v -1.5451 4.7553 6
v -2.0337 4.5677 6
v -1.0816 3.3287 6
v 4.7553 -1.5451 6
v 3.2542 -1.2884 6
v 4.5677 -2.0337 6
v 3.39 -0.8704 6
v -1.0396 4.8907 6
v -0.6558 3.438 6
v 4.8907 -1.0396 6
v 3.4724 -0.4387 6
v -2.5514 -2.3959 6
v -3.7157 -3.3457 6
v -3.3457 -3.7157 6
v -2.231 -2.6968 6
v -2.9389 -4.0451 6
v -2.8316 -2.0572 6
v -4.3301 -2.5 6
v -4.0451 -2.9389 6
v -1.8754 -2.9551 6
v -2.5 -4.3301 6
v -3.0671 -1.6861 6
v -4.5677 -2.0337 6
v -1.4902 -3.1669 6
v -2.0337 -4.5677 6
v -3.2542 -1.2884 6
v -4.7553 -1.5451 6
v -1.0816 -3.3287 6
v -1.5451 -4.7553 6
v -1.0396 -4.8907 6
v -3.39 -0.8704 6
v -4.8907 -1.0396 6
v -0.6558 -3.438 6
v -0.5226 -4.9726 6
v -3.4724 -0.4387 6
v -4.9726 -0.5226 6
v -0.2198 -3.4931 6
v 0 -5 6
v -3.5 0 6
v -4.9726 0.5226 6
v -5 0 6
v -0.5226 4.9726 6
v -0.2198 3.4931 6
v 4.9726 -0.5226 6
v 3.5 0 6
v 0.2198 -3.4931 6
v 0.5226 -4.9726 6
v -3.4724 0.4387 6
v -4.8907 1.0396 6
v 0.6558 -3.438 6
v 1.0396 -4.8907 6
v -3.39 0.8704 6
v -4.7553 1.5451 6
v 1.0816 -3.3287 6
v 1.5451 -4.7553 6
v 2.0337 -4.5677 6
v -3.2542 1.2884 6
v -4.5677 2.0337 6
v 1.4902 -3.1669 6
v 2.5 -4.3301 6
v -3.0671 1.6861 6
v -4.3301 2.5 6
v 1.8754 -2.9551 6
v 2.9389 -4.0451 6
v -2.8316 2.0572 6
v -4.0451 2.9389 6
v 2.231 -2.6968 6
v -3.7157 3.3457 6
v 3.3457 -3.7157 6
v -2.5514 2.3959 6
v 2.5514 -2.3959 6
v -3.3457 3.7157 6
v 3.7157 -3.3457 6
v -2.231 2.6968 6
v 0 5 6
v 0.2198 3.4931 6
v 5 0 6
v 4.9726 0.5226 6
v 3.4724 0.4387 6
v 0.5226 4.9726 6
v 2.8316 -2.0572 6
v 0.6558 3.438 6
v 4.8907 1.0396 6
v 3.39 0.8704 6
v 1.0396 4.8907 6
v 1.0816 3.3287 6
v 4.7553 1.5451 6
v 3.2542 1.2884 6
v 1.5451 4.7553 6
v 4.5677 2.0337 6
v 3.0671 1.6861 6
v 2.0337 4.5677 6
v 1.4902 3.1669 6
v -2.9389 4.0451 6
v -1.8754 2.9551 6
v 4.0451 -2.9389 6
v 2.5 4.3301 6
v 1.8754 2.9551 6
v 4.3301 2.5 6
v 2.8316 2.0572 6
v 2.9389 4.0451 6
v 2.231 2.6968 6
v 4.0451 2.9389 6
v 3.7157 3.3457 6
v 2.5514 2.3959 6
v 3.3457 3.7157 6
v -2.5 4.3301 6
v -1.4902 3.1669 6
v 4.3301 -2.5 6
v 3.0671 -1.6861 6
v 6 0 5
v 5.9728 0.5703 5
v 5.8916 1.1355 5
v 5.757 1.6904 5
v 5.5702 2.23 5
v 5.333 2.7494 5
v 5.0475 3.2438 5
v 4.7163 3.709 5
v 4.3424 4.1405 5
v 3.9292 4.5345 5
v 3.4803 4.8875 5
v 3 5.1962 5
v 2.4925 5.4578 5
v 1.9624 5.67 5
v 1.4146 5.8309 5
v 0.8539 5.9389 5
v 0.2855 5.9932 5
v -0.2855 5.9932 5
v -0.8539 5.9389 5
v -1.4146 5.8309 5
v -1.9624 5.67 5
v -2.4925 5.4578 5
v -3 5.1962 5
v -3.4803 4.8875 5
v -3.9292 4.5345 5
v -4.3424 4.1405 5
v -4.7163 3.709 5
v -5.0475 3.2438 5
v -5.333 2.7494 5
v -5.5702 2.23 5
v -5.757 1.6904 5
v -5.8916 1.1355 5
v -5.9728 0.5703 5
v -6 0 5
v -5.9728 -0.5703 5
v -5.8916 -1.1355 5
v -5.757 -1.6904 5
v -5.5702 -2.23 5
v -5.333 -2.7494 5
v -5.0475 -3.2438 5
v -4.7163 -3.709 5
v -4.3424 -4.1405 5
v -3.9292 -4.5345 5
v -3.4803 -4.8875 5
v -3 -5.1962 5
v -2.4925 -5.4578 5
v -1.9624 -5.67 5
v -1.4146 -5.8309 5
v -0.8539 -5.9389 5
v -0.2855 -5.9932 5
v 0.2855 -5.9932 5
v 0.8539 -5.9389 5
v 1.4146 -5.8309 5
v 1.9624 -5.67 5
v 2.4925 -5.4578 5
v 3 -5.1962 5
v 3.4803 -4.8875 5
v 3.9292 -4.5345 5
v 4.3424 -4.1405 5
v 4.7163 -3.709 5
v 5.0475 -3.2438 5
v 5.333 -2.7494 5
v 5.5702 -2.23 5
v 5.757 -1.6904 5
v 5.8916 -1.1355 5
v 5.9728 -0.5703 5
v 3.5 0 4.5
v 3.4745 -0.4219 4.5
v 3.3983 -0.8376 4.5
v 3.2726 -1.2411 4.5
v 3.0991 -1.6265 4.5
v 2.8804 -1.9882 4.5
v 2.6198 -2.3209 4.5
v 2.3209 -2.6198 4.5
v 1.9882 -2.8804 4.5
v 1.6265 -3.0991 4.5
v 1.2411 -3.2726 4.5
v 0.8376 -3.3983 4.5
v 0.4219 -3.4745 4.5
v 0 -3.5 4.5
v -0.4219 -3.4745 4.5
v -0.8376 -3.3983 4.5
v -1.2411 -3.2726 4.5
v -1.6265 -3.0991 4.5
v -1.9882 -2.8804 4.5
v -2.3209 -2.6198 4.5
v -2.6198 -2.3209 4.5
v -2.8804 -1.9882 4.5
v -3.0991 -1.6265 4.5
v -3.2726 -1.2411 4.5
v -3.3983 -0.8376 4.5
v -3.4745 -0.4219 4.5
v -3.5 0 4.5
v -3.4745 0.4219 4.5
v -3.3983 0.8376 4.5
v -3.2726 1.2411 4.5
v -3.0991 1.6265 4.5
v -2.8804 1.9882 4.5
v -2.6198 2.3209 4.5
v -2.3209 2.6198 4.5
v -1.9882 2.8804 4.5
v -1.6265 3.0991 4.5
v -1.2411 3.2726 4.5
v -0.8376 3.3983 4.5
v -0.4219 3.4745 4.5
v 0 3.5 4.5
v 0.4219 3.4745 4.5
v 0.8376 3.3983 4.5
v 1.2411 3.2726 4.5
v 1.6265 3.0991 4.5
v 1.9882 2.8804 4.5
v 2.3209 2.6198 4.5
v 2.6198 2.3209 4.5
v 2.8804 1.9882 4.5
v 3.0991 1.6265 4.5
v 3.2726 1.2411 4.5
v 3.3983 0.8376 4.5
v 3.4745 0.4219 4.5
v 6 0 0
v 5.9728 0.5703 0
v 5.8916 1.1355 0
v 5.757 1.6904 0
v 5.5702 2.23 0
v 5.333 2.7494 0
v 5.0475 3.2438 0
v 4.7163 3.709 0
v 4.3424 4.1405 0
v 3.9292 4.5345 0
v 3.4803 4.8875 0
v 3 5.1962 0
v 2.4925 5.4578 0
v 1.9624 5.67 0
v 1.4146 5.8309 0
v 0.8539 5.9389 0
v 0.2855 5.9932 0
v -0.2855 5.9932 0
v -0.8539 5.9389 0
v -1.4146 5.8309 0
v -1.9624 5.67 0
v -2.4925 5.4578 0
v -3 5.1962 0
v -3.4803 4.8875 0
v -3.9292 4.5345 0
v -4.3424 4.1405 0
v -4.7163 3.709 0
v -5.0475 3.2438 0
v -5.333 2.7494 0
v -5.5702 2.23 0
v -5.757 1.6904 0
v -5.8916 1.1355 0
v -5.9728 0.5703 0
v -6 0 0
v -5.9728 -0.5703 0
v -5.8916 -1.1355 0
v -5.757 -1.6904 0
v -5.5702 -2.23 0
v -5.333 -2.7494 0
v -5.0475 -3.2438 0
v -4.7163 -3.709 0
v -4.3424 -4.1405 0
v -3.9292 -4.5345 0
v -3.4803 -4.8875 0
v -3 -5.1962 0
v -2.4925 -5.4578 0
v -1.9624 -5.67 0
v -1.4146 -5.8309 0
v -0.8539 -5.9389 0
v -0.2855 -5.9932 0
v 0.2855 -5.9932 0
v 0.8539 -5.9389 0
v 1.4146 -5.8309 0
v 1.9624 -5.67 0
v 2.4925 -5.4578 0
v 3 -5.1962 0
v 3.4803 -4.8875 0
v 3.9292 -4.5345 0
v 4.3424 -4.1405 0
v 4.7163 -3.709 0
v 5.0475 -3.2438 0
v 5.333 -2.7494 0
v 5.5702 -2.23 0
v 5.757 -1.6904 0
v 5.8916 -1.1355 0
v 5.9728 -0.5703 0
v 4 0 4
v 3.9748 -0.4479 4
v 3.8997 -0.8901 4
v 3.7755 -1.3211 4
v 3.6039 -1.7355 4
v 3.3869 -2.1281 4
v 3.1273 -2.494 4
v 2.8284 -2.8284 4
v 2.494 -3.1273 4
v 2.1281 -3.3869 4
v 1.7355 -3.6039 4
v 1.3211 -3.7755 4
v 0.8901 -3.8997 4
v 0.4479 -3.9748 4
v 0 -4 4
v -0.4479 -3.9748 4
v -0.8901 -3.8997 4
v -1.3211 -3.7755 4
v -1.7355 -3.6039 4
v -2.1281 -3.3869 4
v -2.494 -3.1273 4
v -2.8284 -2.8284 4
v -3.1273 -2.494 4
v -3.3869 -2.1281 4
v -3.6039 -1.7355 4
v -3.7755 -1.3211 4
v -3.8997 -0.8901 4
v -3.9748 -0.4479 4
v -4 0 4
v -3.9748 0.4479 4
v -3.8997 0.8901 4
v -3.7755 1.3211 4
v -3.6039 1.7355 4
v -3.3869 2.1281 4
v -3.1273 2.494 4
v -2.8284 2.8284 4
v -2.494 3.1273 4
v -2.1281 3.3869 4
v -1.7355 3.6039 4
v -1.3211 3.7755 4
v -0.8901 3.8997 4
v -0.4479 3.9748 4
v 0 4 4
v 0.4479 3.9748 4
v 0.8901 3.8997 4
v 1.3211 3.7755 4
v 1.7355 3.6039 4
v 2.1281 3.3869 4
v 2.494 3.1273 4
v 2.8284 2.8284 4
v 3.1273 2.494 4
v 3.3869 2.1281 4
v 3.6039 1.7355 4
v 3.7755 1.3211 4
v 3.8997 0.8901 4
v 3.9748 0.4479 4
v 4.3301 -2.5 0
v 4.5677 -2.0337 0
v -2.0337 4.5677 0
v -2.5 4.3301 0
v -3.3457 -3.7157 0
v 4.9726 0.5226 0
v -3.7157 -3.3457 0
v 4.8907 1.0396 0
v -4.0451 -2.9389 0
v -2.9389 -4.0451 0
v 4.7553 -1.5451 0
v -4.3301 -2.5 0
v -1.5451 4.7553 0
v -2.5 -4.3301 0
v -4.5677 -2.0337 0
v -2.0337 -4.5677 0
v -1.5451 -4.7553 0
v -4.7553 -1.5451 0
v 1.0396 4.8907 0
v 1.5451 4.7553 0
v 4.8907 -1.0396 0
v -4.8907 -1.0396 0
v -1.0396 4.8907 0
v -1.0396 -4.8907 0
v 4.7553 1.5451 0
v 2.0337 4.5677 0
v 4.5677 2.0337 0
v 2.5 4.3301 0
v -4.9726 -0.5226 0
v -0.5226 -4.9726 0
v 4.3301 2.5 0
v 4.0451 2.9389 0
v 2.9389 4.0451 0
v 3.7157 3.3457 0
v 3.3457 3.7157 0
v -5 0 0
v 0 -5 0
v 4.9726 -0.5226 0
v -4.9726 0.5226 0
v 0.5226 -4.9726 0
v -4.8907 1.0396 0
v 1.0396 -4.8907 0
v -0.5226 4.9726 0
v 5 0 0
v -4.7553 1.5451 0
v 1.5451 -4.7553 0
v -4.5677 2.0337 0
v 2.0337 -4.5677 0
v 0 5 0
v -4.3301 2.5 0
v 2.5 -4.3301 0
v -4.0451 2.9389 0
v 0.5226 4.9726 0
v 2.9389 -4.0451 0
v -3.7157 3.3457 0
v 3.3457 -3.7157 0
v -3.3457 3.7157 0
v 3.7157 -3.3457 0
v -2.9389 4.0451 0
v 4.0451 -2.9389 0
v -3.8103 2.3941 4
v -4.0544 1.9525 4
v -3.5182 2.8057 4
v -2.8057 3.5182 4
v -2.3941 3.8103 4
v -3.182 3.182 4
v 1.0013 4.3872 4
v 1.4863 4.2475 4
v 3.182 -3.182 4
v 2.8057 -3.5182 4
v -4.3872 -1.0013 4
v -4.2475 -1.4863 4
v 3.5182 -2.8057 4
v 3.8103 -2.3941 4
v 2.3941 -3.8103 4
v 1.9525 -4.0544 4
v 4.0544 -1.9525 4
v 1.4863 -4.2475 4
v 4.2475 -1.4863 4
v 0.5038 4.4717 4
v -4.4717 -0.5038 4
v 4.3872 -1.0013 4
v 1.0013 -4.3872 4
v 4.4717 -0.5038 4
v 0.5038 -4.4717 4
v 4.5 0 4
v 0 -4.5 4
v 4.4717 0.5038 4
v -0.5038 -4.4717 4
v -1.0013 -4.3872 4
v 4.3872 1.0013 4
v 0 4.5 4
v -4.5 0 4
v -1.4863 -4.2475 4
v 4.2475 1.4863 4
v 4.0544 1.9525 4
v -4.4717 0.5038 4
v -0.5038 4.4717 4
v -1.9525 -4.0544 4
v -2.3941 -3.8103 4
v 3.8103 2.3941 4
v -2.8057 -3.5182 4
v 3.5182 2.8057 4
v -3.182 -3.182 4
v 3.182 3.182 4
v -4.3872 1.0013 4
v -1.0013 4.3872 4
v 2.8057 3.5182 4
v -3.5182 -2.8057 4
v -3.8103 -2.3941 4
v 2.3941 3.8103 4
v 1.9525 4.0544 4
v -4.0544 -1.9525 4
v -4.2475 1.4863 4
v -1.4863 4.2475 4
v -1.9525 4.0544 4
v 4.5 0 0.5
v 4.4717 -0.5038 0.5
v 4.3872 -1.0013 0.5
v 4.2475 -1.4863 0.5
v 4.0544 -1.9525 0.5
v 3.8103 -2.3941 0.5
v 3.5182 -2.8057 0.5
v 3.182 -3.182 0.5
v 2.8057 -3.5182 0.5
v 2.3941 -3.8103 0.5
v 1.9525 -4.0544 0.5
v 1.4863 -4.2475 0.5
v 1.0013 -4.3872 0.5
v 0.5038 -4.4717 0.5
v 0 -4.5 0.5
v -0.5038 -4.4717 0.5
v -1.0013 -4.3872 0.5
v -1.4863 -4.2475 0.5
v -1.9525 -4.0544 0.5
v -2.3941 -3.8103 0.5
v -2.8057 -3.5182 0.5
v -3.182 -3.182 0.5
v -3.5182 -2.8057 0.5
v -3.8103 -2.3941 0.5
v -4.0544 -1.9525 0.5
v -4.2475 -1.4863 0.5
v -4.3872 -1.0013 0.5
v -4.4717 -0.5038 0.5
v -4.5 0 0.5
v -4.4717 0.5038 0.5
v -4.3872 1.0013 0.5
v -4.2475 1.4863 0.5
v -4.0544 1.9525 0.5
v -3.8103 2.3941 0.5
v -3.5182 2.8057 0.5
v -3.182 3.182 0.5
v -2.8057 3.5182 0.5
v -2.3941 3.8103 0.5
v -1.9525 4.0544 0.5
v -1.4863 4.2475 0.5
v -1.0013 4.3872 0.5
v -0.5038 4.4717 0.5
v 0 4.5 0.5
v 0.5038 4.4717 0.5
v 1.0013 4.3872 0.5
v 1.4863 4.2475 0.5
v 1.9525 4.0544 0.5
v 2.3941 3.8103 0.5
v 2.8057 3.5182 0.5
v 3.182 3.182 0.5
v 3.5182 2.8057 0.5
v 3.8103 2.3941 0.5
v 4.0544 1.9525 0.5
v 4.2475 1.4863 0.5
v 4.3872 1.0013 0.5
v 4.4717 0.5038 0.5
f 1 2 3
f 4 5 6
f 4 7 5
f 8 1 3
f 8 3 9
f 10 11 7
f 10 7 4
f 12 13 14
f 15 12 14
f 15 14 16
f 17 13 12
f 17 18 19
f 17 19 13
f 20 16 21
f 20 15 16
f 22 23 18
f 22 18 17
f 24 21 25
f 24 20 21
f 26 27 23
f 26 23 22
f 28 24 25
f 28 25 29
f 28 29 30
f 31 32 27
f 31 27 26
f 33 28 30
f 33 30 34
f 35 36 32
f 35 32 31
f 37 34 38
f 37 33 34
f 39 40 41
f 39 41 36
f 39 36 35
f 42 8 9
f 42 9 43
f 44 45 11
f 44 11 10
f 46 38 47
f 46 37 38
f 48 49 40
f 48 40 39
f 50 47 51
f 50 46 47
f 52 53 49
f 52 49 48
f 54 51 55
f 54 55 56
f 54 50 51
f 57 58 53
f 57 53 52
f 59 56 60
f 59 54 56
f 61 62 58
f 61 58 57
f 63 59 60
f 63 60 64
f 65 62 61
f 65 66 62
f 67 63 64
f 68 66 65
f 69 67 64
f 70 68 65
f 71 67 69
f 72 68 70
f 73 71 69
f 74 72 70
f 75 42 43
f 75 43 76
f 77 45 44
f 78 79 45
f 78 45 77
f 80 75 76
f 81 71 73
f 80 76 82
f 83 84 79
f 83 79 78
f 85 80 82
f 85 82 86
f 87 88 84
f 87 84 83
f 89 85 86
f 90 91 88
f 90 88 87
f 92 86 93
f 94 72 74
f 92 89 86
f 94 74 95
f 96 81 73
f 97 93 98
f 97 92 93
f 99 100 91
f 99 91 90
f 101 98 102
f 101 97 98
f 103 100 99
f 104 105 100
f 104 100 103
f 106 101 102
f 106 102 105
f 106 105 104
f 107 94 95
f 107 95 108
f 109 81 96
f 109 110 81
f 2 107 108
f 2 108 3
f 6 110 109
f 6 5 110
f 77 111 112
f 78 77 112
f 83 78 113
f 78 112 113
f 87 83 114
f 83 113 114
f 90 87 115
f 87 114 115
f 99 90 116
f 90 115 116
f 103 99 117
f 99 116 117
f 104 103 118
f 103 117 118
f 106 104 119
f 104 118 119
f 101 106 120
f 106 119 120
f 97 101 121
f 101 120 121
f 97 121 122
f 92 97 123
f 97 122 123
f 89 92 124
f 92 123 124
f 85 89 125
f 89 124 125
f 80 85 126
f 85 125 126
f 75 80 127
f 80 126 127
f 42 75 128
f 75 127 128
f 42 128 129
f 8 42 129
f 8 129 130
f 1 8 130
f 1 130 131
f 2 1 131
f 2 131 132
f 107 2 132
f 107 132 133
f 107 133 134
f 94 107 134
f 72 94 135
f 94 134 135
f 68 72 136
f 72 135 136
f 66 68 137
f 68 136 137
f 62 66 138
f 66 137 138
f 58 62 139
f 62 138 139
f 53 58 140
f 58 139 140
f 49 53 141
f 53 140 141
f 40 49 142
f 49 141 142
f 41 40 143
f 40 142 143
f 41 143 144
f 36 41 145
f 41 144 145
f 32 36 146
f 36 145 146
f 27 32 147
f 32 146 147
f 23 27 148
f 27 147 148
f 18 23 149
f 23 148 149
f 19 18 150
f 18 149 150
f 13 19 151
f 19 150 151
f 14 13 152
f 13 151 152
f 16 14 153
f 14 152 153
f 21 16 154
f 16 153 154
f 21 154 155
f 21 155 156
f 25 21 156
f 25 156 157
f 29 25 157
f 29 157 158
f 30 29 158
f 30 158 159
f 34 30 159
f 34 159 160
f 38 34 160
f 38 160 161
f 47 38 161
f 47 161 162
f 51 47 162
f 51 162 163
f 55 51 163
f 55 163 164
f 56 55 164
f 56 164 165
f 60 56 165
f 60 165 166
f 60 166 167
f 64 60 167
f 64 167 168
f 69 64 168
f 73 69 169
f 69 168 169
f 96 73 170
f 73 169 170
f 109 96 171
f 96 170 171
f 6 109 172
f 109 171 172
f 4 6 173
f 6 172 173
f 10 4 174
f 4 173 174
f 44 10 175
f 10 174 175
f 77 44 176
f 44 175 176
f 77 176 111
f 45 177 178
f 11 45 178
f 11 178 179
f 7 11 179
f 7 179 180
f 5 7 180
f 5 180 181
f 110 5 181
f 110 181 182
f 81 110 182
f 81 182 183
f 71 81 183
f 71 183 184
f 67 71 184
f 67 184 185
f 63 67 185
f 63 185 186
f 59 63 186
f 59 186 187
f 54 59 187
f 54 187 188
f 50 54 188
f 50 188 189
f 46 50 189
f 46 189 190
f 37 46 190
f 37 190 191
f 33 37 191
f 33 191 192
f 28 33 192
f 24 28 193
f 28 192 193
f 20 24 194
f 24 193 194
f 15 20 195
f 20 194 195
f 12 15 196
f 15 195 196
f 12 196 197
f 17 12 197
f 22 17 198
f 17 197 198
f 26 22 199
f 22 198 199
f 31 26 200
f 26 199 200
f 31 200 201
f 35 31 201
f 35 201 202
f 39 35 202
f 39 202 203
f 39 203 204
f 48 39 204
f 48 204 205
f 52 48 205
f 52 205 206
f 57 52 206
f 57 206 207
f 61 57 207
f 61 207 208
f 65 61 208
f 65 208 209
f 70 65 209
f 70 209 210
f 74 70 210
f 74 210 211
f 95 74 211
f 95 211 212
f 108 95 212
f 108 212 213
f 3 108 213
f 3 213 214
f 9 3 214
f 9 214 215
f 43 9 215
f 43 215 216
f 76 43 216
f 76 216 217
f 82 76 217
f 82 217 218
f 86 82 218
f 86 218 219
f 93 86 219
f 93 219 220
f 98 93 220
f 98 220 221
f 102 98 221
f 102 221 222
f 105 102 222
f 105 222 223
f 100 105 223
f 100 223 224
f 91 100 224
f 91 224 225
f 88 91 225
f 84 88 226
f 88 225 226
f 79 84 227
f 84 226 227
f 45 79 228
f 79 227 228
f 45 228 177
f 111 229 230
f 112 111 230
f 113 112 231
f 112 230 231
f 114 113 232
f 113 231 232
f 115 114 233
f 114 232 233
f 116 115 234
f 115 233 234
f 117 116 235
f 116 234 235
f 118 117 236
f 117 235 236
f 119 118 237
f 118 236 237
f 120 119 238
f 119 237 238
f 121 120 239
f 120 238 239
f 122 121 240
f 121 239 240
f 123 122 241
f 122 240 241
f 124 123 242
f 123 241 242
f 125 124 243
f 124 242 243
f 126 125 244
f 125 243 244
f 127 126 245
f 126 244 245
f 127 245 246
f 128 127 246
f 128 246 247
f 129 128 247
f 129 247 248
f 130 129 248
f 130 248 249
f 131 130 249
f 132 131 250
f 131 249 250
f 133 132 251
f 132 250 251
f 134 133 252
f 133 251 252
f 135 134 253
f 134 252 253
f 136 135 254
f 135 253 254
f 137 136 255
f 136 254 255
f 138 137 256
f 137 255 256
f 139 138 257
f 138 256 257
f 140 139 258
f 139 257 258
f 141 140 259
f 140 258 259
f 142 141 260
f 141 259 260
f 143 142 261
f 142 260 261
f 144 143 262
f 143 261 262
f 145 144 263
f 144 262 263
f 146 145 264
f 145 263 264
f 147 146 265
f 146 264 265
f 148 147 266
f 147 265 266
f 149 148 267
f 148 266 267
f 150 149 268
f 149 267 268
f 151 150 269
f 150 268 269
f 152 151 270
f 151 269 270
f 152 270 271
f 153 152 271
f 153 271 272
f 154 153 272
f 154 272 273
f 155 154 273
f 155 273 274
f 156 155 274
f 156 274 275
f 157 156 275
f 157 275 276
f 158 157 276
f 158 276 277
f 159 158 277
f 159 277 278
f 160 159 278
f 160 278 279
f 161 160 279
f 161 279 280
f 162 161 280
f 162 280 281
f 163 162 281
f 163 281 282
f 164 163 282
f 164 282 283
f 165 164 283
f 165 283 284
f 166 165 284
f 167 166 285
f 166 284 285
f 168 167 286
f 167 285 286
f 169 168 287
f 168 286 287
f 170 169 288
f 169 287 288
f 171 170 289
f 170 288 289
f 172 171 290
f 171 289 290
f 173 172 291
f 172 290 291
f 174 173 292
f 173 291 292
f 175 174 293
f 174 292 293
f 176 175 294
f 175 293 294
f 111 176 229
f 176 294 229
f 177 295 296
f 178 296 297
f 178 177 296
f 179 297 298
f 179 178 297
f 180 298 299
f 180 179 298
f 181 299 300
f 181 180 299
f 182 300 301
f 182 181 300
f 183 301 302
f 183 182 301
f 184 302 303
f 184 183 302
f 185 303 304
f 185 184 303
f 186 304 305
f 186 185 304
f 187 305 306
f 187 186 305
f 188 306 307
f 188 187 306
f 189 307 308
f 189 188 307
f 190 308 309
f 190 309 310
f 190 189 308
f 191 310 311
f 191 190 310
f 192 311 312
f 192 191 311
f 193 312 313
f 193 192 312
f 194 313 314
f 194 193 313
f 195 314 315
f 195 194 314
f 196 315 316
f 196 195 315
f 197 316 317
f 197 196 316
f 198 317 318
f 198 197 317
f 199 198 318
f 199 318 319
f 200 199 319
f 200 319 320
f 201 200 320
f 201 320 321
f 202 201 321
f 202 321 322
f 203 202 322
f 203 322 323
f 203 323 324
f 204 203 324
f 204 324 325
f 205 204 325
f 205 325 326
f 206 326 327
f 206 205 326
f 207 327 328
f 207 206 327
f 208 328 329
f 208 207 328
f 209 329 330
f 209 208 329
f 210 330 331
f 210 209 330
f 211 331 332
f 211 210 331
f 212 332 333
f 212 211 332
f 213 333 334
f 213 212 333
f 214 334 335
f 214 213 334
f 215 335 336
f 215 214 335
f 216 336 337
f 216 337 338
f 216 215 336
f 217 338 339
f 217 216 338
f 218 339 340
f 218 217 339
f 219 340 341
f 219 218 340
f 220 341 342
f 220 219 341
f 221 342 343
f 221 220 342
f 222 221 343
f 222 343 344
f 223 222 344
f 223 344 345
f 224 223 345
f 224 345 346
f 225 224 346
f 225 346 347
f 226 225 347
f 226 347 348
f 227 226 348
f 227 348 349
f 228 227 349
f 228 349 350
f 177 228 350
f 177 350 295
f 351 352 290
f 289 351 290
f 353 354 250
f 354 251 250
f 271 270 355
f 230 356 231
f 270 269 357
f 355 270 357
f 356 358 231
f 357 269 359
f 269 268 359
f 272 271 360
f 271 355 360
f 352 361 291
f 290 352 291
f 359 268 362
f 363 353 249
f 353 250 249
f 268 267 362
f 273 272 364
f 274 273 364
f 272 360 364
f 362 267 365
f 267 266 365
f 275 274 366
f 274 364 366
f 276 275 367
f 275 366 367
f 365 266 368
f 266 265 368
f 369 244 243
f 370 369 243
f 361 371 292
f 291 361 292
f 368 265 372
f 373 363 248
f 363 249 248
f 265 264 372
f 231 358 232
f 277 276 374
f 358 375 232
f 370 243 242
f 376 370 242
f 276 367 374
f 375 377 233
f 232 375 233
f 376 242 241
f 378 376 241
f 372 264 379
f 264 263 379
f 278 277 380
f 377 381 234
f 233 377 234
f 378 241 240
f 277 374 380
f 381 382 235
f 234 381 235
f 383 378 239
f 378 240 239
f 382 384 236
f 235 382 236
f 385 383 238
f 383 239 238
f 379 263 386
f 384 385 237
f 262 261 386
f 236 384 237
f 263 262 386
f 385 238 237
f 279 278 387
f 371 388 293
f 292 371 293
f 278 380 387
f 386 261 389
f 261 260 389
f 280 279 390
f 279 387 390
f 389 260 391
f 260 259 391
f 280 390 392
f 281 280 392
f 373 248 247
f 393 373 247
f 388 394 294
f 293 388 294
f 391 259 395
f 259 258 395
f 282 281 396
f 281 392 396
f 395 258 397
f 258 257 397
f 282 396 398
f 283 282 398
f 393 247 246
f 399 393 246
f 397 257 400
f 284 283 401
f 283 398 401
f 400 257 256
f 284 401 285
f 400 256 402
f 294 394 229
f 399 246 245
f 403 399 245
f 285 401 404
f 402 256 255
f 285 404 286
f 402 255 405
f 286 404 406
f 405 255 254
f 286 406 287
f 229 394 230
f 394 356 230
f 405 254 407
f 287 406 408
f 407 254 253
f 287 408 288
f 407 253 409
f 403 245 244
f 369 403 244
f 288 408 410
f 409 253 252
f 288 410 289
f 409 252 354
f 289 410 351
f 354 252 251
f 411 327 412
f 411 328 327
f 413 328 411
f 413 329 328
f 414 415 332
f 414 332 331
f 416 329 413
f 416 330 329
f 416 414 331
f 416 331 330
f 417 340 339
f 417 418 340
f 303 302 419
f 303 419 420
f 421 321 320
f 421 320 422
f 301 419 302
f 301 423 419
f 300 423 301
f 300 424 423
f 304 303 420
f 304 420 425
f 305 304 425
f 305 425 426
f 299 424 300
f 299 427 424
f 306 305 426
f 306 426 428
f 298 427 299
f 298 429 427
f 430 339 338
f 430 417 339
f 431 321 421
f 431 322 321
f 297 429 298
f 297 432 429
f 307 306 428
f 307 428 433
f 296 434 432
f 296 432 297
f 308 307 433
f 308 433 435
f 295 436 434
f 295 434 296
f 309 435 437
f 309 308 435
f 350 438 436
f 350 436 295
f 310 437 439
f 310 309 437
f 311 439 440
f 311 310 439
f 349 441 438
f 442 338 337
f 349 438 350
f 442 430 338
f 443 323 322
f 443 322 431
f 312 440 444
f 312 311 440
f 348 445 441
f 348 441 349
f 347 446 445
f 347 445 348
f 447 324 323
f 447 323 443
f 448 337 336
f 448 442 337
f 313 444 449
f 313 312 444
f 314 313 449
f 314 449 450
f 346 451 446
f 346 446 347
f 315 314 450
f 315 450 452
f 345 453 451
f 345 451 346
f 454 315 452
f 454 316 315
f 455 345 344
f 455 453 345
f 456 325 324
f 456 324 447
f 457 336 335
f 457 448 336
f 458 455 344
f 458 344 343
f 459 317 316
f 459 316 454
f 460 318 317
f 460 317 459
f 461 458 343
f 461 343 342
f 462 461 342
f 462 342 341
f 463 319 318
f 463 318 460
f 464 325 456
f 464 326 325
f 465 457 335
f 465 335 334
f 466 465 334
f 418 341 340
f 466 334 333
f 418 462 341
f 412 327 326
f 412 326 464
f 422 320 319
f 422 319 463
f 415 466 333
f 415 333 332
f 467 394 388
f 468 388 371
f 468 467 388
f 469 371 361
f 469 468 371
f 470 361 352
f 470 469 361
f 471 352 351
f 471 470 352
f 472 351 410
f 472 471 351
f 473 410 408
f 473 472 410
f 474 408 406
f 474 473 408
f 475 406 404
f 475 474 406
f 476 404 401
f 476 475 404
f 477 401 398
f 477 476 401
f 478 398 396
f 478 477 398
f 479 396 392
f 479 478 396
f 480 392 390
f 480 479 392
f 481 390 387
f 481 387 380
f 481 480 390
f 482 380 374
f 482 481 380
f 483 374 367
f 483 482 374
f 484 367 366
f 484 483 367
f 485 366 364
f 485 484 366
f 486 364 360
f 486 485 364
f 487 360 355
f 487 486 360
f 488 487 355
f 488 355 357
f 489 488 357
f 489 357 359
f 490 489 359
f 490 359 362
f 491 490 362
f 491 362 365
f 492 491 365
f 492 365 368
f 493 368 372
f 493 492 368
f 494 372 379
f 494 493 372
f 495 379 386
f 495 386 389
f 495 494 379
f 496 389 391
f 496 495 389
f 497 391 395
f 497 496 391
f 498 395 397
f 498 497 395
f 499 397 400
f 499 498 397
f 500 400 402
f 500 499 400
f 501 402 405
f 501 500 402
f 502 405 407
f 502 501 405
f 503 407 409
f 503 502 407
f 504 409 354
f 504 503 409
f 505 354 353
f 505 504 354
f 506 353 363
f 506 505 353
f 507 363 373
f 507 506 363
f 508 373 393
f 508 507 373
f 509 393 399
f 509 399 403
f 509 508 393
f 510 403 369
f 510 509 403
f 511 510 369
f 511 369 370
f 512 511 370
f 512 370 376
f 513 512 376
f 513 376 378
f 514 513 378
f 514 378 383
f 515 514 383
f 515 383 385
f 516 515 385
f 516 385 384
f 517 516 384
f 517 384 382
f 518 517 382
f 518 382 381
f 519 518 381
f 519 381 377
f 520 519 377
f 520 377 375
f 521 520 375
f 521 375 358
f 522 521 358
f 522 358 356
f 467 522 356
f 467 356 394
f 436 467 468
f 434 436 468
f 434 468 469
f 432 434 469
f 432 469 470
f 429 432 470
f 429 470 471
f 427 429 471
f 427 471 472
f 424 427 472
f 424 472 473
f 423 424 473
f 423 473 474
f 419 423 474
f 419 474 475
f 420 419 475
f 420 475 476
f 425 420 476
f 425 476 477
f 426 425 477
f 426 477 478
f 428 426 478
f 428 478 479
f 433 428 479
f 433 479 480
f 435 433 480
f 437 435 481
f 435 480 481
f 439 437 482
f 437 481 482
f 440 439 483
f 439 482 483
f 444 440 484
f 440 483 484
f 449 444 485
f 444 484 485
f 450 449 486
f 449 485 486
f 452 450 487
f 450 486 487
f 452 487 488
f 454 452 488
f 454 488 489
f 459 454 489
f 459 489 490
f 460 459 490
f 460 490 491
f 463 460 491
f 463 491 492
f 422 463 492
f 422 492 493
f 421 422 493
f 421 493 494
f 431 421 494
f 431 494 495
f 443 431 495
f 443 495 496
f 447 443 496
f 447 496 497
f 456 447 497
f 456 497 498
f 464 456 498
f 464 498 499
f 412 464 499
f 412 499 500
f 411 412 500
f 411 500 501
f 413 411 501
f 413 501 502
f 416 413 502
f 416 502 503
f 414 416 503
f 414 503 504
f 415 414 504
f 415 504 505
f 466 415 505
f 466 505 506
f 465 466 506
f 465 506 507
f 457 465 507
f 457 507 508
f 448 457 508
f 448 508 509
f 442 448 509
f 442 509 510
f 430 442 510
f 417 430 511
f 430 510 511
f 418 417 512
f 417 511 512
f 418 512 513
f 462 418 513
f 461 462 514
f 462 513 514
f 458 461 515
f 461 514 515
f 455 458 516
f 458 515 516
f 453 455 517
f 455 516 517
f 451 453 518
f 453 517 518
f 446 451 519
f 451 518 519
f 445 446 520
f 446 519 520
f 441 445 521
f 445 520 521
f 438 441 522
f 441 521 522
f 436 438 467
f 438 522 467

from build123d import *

# Parameters (mm, degrees)
SKETCH_R        = 6
PAD_DEPTH       = 6
SKETCH002_R     = 3.5
POCKET_DEPTH    = 6.001
SKETCH001_R     = 4.5
POCKET001_DEPTH = 4
CHAMFER_SIZE    = 0.5
CHAMFER001_SIZE = 0.5
CHAMFER002_SIZE = 1


with BuildPart() as part:
    # Sketch → Pad (new body)
    with BuildSketch(Plane.XY):
        Circle(SKETCH_R)
    extrude(amount=PAD_DEPTH)

    # Sketch002 → Pocket (cut, through all)
    with BuildSketch(Plane(origin=(0, 0, 0), x_dir=(1, 0, 0), z_dir=(0, 0, -1))):
        Circle(SKETCH002_R)
    extrude(amount=-POCKET_DEPTH, mode=Mode.SUBTRACT)

    # Sketch001 → Pocket001 (cut)
    with BuildSketch(Plane(origin=(0, 0, 0), x_dir=(1, 0, 0), z_dir=(0, 0, -1))):
        Circle(SKETCH001_R)
    extrude(amount=-POCKET001_DEPTH, mode=Mode.SUBTRACT)

    # Chamfer
    chamfer_edges = [part.edges().sort_by_distance(p)[0] for p in [
        (-4.5, 0, 0),
    ]]
    chamfer(chamfer_edges, length=CHAMFER_SIZE)

    # Chamfer001
    chamfer001_edges = [part.edges().sort_by_distance(p)[0] for p in [
        (-3.5, 0, 4),
    ]]
    chamfer(chamfer001_edges, length=CHAMFER001_SIZE)

    # Chamfer002
    chamfer002_edges = [part.edges().sort_by_distance(p)[0] for p in [
        (-6, 0, 6),
    ]]
    chamfer(chamfer002_edges, length=CHAMFER002_SIZE)


solid = part.part
